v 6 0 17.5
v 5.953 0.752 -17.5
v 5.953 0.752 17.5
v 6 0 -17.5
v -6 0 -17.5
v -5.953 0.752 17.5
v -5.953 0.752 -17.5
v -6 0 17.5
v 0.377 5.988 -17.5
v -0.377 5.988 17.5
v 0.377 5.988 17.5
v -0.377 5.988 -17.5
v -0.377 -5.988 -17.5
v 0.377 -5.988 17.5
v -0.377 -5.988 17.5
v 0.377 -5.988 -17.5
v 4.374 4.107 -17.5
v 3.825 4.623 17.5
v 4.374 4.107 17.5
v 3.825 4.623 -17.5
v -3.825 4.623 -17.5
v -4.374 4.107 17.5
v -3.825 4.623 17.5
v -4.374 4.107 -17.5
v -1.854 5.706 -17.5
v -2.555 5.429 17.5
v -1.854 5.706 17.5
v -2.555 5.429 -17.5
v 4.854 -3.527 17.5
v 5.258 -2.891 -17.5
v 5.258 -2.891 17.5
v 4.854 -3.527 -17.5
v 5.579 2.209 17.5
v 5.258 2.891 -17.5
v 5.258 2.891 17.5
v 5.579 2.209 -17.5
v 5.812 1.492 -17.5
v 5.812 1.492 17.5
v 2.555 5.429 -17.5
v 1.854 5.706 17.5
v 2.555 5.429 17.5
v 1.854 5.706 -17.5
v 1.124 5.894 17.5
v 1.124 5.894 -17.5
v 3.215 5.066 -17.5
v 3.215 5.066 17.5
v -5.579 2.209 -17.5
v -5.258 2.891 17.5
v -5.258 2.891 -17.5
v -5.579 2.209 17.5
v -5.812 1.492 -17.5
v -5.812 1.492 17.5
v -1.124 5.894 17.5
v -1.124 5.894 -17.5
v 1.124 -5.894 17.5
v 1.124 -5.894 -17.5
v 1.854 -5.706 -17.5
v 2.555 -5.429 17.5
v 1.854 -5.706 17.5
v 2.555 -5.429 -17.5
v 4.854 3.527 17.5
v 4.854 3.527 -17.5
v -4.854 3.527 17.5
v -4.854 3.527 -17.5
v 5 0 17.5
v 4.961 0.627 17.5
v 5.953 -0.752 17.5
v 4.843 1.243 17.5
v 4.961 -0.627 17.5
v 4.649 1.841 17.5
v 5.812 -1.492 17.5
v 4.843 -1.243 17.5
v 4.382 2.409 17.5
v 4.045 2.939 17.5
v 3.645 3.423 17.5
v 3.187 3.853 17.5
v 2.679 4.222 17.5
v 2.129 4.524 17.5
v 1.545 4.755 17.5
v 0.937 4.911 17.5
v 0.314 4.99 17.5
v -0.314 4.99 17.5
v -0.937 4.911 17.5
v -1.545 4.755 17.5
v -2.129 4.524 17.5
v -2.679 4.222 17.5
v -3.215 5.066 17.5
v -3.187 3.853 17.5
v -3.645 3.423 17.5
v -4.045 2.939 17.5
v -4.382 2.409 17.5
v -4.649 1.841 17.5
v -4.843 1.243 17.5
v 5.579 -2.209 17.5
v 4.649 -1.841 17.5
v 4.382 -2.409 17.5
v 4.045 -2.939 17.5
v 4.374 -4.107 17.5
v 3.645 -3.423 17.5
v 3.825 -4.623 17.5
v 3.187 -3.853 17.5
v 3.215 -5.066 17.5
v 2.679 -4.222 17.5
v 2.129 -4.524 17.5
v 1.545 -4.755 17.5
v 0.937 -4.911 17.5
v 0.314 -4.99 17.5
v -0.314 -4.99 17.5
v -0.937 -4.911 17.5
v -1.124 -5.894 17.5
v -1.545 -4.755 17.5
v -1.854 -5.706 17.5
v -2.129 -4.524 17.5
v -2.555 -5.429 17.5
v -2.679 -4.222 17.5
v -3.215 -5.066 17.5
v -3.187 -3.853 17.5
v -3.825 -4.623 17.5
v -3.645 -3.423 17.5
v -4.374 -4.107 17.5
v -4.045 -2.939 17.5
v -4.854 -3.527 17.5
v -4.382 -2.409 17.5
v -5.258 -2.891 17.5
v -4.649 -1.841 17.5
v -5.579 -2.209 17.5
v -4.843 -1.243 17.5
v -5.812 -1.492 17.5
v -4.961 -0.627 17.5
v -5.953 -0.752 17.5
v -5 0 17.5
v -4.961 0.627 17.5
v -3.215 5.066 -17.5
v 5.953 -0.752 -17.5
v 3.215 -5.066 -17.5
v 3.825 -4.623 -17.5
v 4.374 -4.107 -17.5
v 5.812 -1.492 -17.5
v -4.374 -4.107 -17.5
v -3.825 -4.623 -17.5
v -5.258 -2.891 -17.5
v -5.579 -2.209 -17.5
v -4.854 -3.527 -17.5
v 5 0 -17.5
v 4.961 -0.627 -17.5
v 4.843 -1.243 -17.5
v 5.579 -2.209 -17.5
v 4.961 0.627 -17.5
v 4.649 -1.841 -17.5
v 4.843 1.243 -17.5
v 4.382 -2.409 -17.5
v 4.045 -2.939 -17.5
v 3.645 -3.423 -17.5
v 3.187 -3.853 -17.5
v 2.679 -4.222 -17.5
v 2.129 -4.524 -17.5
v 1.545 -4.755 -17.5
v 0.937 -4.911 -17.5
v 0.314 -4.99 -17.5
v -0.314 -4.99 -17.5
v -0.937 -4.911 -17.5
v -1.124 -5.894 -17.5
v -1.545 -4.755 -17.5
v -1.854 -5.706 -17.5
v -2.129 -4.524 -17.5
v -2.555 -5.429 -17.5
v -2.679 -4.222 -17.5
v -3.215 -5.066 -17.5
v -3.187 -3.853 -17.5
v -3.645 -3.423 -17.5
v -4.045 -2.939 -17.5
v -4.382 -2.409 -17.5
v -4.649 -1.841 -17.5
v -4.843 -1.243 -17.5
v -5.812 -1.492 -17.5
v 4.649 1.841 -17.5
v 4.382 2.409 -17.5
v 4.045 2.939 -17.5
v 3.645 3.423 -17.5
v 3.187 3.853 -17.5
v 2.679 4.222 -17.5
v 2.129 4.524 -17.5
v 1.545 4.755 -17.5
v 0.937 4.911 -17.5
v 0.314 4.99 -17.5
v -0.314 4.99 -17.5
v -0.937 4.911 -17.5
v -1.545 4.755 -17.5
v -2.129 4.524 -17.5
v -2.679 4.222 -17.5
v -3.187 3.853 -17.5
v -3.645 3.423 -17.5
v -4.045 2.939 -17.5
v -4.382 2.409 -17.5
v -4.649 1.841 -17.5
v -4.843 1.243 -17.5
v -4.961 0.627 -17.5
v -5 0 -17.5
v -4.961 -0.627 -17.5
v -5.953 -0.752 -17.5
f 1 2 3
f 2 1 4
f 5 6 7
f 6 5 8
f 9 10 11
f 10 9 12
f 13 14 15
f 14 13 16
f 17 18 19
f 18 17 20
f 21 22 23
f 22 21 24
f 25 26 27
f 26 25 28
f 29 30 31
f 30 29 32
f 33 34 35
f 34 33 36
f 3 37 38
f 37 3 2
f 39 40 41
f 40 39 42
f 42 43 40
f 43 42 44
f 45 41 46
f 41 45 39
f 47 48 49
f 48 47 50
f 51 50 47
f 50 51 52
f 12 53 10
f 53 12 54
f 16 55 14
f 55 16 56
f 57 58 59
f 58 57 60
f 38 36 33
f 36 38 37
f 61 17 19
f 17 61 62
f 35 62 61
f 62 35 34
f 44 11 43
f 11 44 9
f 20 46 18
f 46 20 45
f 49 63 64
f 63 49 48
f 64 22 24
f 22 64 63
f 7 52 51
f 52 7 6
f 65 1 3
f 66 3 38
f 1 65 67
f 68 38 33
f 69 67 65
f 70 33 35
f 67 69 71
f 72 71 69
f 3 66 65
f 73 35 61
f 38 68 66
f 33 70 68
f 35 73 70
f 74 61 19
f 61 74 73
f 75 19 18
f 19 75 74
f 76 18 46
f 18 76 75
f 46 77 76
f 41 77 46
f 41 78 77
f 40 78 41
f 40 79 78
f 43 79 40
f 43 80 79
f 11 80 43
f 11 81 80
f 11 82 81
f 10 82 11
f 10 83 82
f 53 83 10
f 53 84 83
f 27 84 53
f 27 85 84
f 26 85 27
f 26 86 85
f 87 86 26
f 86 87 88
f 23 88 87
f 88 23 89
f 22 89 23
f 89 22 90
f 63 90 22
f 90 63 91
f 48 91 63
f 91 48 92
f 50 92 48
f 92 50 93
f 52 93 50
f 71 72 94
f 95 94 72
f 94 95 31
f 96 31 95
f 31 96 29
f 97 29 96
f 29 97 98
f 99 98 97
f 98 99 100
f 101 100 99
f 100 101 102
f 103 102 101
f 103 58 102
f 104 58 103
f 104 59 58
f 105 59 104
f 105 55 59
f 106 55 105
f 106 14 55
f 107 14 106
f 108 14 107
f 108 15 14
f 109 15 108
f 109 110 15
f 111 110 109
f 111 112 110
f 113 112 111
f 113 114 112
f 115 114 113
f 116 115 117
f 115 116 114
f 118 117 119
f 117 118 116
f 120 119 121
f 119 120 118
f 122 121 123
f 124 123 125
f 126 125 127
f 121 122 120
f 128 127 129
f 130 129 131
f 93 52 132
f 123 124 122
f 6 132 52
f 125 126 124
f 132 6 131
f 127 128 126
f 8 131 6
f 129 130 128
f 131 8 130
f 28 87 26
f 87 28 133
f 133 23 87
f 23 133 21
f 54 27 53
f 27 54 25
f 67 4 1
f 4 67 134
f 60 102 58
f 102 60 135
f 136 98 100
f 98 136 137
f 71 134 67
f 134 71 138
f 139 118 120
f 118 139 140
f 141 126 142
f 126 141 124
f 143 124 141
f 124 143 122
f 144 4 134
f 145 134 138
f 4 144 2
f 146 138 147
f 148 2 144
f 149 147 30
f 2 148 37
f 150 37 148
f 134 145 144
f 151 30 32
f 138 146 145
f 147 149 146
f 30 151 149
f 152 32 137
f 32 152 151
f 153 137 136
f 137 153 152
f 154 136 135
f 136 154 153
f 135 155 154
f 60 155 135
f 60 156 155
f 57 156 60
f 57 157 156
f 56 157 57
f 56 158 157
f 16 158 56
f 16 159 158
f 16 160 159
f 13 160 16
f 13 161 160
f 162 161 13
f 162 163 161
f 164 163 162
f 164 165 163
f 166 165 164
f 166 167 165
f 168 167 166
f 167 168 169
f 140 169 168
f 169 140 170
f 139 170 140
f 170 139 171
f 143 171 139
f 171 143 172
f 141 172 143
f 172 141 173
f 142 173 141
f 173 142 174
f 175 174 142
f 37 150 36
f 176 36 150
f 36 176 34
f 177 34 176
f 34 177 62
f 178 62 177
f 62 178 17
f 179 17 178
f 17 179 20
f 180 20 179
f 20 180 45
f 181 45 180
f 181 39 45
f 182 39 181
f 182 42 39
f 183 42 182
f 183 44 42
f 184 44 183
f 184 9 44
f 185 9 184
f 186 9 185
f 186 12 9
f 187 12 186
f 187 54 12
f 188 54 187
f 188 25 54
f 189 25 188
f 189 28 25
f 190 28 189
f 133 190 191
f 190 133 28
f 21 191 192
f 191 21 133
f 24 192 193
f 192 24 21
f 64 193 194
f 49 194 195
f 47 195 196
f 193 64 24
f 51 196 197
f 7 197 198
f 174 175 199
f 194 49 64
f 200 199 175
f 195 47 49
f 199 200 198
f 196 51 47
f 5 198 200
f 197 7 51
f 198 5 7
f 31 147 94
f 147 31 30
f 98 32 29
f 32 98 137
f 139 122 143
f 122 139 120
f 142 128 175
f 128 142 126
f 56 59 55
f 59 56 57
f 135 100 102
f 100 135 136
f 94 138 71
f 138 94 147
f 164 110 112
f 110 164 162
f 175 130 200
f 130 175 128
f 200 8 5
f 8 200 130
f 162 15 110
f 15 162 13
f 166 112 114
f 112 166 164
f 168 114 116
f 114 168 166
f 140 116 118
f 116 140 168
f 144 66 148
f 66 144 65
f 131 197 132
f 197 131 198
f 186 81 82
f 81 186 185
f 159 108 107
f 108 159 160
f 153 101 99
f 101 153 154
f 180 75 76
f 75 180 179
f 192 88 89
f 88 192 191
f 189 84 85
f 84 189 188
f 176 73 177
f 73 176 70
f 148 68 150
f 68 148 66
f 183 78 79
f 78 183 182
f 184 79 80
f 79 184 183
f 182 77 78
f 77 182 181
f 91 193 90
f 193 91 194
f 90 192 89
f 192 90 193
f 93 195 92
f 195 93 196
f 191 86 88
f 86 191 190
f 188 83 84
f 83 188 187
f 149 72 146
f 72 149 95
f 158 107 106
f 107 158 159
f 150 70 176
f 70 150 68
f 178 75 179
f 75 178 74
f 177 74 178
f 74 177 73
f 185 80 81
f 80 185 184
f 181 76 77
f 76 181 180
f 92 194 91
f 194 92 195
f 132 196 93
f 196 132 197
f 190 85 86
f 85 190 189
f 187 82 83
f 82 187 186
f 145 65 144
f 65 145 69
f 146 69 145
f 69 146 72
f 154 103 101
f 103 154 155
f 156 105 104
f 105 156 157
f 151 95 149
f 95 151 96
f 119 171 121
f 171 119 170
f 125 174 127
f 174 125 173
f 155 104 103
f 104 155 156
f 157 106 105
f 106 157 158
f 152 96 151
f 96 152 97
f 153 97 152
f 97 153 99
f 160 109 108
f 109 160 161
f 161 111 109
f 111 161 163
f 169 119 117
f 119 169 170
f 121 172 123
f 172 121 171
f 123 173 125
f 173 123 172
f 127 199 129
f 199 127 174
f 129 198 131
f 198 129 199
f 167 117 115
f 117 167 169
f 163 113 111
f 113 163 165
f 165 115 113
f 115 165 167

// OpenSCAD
$fn = 50;


difference() {
	union() {
		translate(v = [0, 0, -17.5000000000]) {
			cylinder(h = 35, r = 6.0000000000);
		}
	}
	union() {
		translate(v = [0, 0, -100.0000000000]) {
			cylinder(h = 200, r = 5.0000000000);
		}
	}
}
